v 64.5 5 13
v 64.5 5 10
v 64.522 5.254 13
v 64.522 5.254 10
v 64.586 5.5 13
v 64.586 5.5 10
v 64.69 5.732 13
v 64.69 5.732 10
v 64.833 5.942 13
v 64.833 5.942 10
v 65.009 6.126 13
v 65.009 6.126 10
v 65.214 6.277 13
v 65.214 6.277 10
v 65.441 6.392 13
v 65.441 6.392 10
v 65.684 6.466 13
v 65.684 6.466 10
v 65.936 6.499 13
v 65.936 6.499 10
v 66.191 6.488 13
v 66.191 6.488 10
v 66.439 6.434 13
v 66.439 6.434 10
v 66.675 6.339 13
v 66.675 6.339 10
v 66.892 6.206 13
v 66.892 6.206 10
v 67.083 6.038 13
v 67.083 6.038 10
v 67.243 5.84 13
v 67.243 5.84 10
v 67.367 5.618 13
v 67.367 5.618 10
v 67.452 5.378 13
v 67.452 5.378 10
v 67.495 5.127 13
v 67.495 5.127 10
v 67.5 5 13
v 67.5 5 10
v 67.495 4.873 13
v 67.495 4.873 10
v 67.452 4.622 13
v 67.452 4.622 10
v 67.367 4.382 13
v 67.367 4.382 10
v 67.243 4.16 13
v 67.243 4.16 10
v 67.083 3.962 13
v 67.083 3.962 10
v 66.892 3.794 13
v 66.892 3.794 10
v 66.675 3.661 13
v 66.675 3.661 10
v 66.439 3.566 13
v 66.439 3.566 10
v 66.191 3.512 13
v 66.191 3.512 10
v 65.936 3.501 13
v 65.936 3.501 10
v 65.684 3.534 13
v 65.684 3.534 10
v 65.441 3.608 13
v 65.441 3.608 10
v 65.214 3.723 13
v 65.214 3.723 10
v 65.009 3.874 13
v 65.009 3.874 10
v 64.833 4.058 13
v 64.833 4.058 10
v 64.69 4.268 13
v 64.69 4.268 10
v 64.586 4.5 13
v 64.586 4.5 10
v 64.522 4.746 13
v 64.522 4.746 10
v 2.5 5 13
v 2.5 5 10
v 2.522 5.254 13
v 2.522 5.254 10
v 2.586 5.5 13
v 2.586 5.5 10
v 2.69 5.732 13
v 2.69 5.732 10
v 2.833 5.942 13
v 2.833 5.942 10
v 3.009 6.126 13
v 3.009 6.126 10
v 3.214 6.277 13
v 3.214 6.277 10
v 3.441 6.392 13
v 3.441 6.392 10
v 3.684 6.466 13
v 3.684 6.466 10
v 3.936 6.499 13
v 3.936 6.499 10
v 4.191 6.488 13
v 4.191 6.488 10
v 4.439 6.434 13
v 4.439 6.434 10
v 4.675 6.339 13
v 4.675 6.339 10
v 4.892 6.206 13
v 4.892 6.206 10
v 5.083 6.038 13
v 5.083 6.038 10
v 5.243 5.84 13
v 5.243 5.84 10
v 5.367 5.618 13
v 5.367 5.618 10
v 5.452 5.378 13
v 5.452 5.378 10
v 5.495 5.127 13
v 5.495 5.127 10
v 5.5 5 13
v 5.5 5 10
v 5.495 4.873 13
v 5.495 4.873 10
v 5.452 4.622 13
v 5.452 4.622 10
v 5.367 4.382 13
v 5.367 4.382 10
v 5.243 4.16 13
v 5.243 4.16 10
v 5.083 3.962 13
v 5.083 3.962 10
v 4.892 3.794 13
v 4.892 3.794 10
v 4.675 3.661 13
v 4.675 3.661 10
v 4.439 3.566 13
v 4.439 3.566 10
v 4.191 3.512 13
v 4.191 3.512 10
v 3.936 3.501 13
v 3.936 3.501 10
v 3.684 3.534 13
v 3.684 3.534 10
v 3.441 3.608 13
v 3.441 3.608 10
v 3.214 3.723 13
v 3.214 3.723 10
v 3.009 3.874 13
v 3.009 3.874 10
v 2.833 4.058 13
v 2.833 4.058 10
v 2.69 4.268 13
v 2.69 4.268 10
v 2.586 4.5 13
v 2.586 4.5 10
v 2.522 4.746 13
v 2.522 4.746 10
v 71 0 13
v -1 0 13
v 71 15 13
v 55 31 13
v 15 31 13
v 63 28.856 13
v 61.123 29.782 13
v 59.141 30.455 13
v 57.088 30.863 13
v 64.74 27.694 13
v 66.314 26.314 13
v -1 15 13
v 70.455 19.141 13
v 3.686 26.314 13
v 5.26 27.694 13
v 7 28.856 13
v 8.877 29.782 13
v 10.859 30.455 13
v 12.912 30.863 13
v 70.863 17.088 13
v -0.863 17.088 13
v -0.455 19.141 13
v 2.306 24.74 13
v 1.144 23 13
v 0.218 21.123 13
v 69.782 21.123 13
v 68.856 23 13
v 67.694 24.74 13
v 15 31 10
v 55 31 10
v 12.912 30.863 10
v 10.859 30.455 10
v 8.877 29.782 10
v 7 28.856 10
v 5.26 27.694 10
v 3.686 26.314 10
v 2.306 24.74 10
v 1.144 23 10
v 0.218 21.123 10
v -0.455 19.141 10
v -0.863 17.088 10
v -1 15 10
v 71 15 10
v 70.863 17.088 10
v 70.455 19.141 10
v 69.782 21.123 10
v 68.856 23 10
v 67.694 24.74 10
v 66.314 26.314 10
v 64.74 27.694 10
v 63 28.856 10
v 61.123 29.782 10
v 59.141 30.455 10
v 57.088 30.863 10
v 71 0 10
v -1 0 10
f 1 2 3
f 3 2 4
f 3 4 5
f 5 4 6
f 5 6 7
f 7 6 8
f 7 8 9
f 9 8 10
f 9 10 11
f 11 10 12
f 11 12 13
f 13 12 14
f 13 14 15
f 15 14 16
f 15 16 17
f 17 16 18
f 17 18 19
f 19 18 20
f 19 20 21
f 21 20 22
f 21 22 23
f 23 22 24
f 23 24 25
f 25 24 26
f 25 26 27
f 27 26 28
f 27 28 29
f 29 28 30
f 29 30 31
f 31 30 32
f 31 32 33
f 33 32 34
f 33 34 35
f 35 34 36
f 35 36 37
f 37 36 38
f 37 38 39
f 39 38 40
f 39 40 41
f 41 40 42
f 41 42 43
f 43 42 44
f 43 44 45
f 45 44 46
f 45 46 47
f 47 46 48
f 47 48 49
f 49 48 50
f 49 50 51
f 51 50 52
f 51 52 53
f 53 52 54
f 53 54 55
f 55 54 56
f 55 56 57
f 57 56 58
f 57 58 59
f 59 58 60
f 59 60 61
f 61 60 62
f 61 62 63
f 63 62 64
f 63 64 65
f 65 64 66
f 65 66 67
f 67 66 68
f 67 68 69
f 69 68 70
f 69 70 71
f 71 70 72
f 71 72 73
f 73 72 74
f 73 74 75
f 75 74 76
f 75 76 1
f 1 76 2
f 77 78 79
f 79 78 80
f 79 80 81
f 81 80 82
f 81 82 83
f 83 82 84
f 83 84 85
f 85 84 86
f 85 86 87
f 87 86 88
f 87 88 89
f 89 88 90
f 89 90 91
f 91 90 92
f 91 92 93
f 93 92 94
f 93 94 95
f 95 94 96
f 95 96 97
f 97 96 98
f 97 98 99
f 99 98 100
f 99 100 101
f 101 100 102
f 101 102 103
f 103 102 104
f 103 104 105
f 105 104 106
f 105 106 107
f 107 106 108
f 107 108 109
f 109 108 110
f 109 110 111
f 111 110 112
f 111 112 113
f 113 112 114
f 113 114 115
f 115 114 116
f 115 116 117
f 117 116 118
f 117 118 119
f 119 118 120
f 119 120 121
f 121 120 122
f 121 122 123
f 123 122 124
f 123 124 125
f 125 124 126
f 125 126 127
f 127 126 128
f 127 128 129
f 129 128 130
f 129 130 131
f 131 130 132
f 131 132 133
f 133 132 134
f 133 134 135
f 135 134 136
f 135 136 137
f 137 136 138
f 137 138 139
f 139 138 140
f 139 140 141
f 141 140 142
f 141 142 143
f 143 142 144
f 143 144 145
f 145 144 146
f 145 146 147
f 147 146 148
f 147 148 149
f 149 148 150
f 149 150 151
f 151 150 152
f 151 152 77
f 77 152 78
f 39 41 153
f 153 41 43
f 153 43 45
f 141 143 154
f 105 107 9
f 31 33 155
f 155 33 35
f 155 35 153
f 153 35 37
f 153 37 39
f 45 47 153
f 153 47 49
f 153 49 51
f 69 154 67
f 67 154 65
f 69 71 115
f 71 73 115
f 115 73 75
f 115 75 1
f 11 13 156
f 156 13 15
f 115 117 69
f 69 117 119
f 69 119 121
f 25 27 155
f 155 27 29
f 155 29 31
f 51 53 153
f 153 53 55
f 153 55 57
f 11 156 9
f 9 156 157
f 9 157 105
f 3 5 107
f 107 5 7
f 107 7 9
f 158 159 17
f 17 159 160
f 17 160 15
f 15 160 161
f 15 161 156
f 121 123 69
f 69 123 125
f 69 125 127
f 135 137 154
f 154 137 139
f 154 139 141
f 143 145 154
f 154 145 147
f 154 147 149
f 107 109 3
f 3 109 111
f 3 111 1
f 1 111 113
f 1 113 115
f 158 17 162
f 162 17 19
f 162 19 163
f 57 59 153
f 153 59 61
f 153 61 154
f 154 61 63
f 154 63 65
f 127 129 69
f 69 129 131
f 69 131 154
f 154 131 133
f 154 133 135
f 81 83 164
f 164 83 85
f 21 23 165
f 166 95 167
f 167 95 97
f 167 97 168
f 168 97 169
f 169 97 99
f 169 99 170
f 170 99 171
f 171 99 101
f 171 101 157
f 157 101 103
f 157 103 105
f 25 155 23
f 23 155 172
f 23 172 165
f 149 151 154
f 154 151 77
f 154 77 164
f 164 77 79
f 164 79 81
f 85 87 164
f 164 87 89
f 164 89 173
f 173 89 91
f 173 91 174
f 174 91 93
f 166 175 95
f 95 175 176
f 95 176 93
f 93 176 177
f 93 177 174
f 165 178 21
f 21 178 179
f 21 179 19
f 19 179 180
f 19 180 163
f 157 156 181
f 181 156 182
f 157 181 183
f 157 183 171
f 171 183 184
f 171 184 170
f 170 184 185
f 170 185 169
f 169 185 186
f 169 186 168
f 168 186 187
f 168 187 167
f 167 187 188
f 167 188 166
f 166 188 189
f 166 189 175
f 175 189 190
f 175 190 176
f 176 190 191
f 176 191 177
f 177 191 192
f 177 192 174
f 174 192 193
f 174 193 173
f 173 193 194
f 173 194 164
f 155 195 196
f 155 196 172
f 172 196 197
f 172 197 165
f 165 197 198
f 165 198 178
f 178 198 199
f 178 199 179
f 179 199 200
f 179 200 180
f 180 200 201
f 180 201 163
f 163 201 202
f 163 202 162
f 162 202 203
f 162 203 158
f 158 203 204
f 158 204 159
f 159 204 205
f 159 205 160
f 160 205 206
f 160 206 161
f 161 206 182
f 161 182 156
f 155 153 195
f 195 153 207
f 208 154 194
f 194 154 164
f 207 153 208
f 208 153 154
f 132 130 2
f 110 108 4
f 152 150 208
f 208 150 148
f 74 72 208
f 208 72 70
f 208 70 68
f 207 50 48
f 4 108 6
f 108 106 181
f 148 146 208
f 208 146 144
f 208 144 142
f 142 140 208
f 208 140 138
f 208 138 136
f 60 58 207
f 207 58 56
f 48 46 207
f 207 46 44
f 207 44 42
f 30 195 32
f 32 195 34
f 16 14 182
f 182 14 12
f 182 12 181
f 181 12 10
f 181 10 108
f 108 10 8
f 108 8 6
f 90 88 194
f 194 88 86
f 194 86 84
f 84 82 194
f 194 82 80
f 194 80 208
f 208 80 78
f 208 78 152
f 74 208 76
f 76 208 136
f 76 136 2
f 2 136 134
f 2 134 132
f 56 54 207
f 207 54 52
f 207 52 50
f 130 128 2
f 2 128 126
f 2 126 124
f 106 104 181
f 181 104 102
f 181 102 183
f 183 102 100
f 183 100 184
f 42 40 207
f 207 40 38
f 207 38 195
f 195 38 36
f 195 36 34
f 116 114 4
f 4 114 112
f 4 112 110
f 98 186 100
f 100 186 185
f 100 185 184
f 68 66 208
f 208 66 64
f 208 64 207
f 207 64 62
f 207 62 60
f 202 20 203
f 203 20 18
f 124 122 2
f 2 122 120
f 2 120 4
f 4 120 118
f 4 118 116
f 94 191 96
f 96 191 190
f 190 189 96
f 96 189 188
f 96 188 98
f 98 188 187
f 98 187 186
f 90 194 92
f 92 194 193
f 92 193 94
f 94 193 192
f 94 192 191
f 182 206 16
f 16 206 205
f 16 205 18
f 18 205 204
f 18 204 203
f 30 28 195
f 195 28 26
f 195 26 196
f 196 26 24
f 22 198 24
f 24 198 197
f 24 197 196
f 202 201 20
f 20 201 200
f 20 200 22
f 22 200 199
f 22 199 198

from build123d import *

# Parameters (mm, degrees)
SKETCH1_W               = 70
SKETCH1_H               = 70
BOSS_EXTRUDE1_DEPTH     = 10
SKETCH2_R               = 12
SKETCH2_R_2             = 2
SKETCH2_R_3             = 11.5
CUT_EXTRUDE1_DEPTH      = 10
SKETCH3_W               = 10
SKETCH3_H               = 70
BOSS_EXTRUDE2_DEPTH     = 15
SKETCH4_W               = 10
SKETCH4_H               = 70
BOSS_EXTRUDE3_DEPTH     = 15
SKETCH5_R               = 11.5
SKETCH5_R_2             = 4
BOSS_EXTRUDE4_DEPTH     = 2
SKETCH6_R               = 1.5
SKETCH6_R_2             = 1.648708122
CUT_EXTRUDE3_DEPTH      = 10
BOSS_EXTRUDE5_START     = -10
SKETCH7_R               = 11.986708095
SKETCH7_R_2             = 2
BOSS_EXTRUDE5_DEPTH     = 10
SKETCH8_R               = 12
CUT_EXTRUDE4_DEPTH      = 10
SKETCH9_R               = 2
CUT_EXTRUDE5_DEPTH      = 10
CUT_EXTRUDE7_DEPTH      = 5
SKETCH15_W              = 14
SKETCH15_H              = 70
CUT_EXTRUDE8_DEPTH      = 5
CUT_EXTRUDE9_DEPTH      = 19
CUT_EXTRUDE9_DEPTH_BACK = 48
SKETCH16_R              = 1.5
SKETCH17_R              = 5
CUT_EXTRUDE10_DEPTH     = 19
SKETCH18_W              = 44.558304453
SKETCH18_H              = 39
BOSS_EXTRUDE6_DEPTH     = 5
SKETCH19_R              = 1.5
SKETCH19_R_2            = 5
BOSS_EXTRUDE7_DEPTH     = 3
SKETCH20_W              = 72
SKETCH20_H              = 10
CUT_EXTRUDE11_DEPTH     = 77


with BuildPart() as part:
    # Sketch1 → Boss-Extrude1 (new body)
    with BuildSketch(Plane.XY):
        with Locations((35, 35)):
            Rectangle(SKETCH1_W, SKETCH1_H)
    extrude(amount=BOSS_EXTRUDE1_DEPTH)

    # Sketch2 → Cut-Extrude1 (cut)
    with BuildSketch(Plane.XY.offset(10)):
        with Locations((35, 49)):
            Circle(SKETCH2_R)
        with Locations((19.5, 65)):
            Circle(SKETCH2_R_2)
        with Locations((50.5, 65)):
            Circle(SKETCH2_R_2)
        with Locations((19.5, 34)):
            Circle(SKETCH2_R_2)
        with Locations((50.5, 34)):
            Circle(SKETCH2_R_2)
        with Locations((15, 15)):
            Circle(SKETCH2_R_3)
        with Locations((55, 15)):
            Circle(SKETCH2_R_3)
    extrude(amount=-CUT_EXTRUDE1_DEPTH, mode=Mode.SUBTRACT)

    # Sketch3 → Boss-Extrude2 (add)
    with BuildSketch(Plane.ZY):
        with Locations((5, 35)):
            Rectangle(SKETCH3_W, SKETCH3_H)
    extrude(amount=BOSS_EXTRUDE2_DEPTH)

    # Sketch4 → Boss-Extrude3 (add)
    with BuildSketch(Plane(origin=(70, 0, 0), x_dir=(0, 0, -1), z_dir=(1, 0, 0))):
        with Locations((-5, 35)):
            Rectangle(SKETCH4_W, SKETCH4_H)
    extrude(amount=BOSS_EXTRUDE3_DEPTH)

    # Sketch5 → Boss-Extrude4 (add)
    # profile 1 of 2: a face of its own
    with BuildSketch(Plane.XY.offset(10)):
        with Locations((15, 15)):
            Circle(SKETCH5_R)
        with Locations((15, 15)):
            Circle(SKETCH5_R_2, mode=Mode.SUBTRACT)
    # profile 2 of 2: a face of its own
    with BuildSketch(Plane.XY.offset(10)):
        with Locations((55, 15)):
            Circle(SKETCH5_R)
        with Locations((55, 15)):
            Circle(SKETCH5_R_2, mode=Mode.SUBTRACT)
    extrude(amount=-BOSS_EXTRUDE4_DEPTH)

    # Sketch6 → Cut-Extrude3 (cut)
    with BuildSketch(Plane(origin=(0, 0, 0), x_dir=(-1, 0, 0), z_dir=(0, 0, -1))):
        with Locations((-80, 65)):
            Circle(SKETCH6_R)
        with Locations((-80, 5)):
            Circle(SKETCH6_R)
        with Locations((10, 65)):
            Circle(SKETCH6_R_2)
        with Locations((10, 5)):
            Circle(SKETCH6_R)
    extrude(amount=-CUT_EXTRUDE3_DEPTH, mode=Mode.SUBTRACT)

    # Sketch7 → Boss-Extrude5 (add)
    with BuildSketch(Plane(origin=(0, 0, 0), x_dir=(-1, 0, 0), z_dir=(0, 0, -1)).offset(BOSS_EXTRUDE5_START)):
        with Locations((-35, 49)):
            Circle(SKETCH7_R)
        with Locations((-50.5, 65)):
            Circle(SKETCH7_R_2)
        with Locations((-19.5, 65)):
            Circle(SKETCH7_R_2)
        with Locations((-19.5, 34)):
            Circle(SKETCH7_R_2)
        with Locations((-50.5, 34)):
            Circle(SKETCH7_R_2)
    extrude(amount=BOSS_EXTRUDE5_DEPTH)


with BuildPart() as boss_extrude5_piece_1:
    # of the separate pieces the step leaves, piece 1, a body of its own (boss_extrude5_pieces)
    add(part.part.solids().sort_by_distance((-15, 0, 0))[0])


with BuildPart() as boss_extrude5_piece_2:
    # of the separate pieces the step leaves, piece 2, a body of its own (boss_extrude5_pieces)
    add(part.part.solids().sort_by_distance((23.013291905, 49, 10))[0])


with BuildPart() as cut_extrude4_tool:
    # Sketch8 → Cut-Extrude4 (new body)
    with BuildSketch(Plane(origin=(0, 0, 0), x_dir=(-1, 0, 0), z_dir=(0, 0, -1))):
        with Locations((-33.928692494, 49)):
            Circle(SKETCH8_R)
    extrude(amount=-CUT_EXTRUDE4_DEPTH)


with BuildPart() as boss_extrude5_piece_1_1:
    add(boss_extrude5_piece_1.part)

    # Cut-Extrude4: cut by cut_extrude4_tool
    add(cut_extrude4_tool.part, mode=Mode.SUBTRACT)

    # Sketch9 → Cut-Extrude5 (cut)
    with BuildSketch(Plane(origin=(0, 0, 0), x_dir=(-1, 0, 0), z_dir=(0, 0, -1))):
        with Locations((-49.428692494, 64.5)):
            Circle(SKETCH9_R)
        with Locations((-49.428692494, 33.5)):
            Circle(SKETCH9_R)
        with Locations((-18.428692494, 33.5)):
            Circle(SKETCH9_R)
        with Locations((-18.428692494, 64.5)):
            Circle(SKETCH9_R)
    extrude(amount=-CUT_EXTRUDE5_DEPTH, mode=Mode.SUBTRACT)


with BuildPart() as boss_extrude5_piece_2_1:
    add(boss_extrude5_piece_2.part)

    # Cut-Extrude4: cut by cut_extrude4_tool
    add(cut_extrude4_tool.part, mode=Mode.SUBTRACT)


with BuildPart() as cut_extrude7_tool:
    # Sketch14 → Cut-Extrude7 (new body)
    with BuildSketch(Plane(origin=(0, 0, 0), x_dir=(-1, 0, 0), z_dir=(0, 0, -1))):
        with BuildLine():
            Line((-85, 0), (-85, 70))
            Line((-85, 70), (15, 70))
            Line((15, 70), (15, 0))
            Line((15, 0), (1, 0))
            Line((1, 0), (1, 15))
            ThreePointArc((1, 15), (-15, 31), (-31, 15))
            Line((-31, 15), (-31, 0))
            Line((-31, 0), (-39, 0))
            Line((-39, 0), (-39, 15))
            ThreePointArc((-39, 15), (-55, 31), (-71, 15))
            Line((-71, 15), (-71, 0))
            Line((-71, 0), (-85, 0))
        make_face()
    extrude(amount=-CUT_EXTRUDE7_DEPTH)


with BuildPart() as boss_extrude5_piece_1_2:
    add(boss_extrude5_piece_1_1.part)

    # Cut-Extrude7: cut by cut_extrude7_tool
    add(cut_extrude7_tool.part, mode=Mode.SUBTRACT)

    # Sketch15 → Cut-Extrude8 (cut)
    with BuildSketch(Plane(origin=(0, 0, 5), x_dir=(-1, 0, 0), z_dir=(0, 0, -1))):
        with Locations((-78, 35)):
            Rectangle(SKETCH15_W, SKETCH15_H)
        with Locations((8, 35)):
            Rectangle(SKETCH15_W, SKETCH15_H)
    extrude(amount=-CUT_EXTRUDE8_DEPTH, mode=Mode.SUBTRACT)

    # Sketch16 → Cut-Extrude9 (cut, two sides: drawn at the far end of the back side and taken through both)
    with BuildSketch(Plane(origin=(0, 0, 5), x_dir=(-1, 0, 0), z_dir=(0, 0, -1)).offset(-CUT_EXTRUDE9_DEPTH_BACK)):
        with Locations((-66, 65)):
            Circle(SKETCH16_R)
        with Locations((-66, 5)):
            Circle(SKETCH16_R)
        with Locations((-4, 5)):
            Circle(SKETCH16_R)
        with Locations((-4, 65)):
            Circle(SKETCH16_R)
    extrude(amount=CUT_EXTRUDE9_DEPTH + CUT_EXTRUDE9_DEPTH_BACK, mode=Mode.SUBTRACT)

    # Sketch17 → Cut-Extrude10 (cut)
    with BuildSketch(Plane(origin=(0, 0, 8), x_dir=(-1, 0, 0), z_dir=(0, 0, -1))):
        with Locations((-15, 15)):
            Circle(SKETCH17_R)
        with Locations((-55, 15)):
            Circle(SKETCH17_R)
    extrude(amount=-CUT_EXTRUDE10_DEPTH, mode=Mode.SUBTRACT)



with BuildPart() as boss_extrude5_piece_2_2:
    add(boss_extrude5_piece_2_1.part)

    # Cut-Extrude7: cut by cut_extrude7_tool
    add(cut_extrude7_tool.part, mode=Mode.SUBTRACT)


with BuildPart() as boss_extrude5_piece_1_3:
    add(boss_extrude5_piece_1_2.part)

    add(boss_extrude5_piece_2_2.part)  # Boss-Extrude6 merges Boss-Extrude5 piece 2
    # Sketch18 → Boss-Extrude6 (add)
    with BuildSketch(Plane(origin=(0, 0, 5), x_dir=(-1, 0, 0), z_dir=(0, 0, -1))):
        with Locations((-37.279152227, 50.5)):
            Rectangle(SKETCH18_W, SKETCH18_H)
    extrude(amount=-BOSS_EXTRUDE6_DEPTH)

    # Sketch19 → Boss-Extrude7 (add)
    # profile 1 of 3: a face of its own
    with BuildSketch(Plane.XY.offset(10)):
        with BuildLine():
            Line((71, 0), (71, 15))
            ThreePointArc((71, 15), (66.313708499, 26.313708499), (55, 31))
            Line((55, 31), (15, 31))
            ThreePointArc((15, 31), (3.686291501, 26.313708499), (-1, 15))
            Line((-1, 15), (-1, 0))
            Line((-1, 0), (71, 0))
        make_face()
        with Locations(Location((4, 5, 0), (0, 0, 180))):
            Circle(SKETCH19_R, mode=Mode.SUBTRACT)
        with Locations(Location((15, 15, 0), (0, 0, 180))):
            Circle(SKETCH19_R_2, mode=Mode.SUBTRACT)
        with Locations(Location((66, 5, 0), (0, 0, 180))):
            Circle(SKETCH19_R, mode=Mode.SUBTRACT)
        with Locations(Location((55, 15, 0), (0, 0, 180))):
            Circle(SKETCH19_R_2, mode=Mode.SUBTRACT)
    # profile 2 of 3: a face of its own
    with BuildSketch(Plane.XY.offset(10)):
        with Locations(Location((55, 15, 0), (0, 0, 180))):
            Circle(SKETCH19_R_2)
    # profile 3 of 3: a face of its own
    with BuildSketch(Plane.XY.offset(10)):
        with Locations(Location((15, 15, 0), (0, 0, 180))):
            Circle(SKETCH19_R_2)
    extrude(amount=BOSS_EXTRUDE7_DEPTH)

    # Sketch20 → Cut-Extrude11 (cut)
    with BuildSketch(Plane(origin=(0, 70, 0), x_dir=(1, 0, 0), z_dir=(0, 1, 0))):
        with Locations((35, -5)):
            Rectangle(SKETCH20_W, SKETCH20_H)
    extrude(amount=-CUT_EXTRUDE11_DEPTH, mode=Mode.SUBTRACT)


solid = boss_extrude5_piece_1_3.part
